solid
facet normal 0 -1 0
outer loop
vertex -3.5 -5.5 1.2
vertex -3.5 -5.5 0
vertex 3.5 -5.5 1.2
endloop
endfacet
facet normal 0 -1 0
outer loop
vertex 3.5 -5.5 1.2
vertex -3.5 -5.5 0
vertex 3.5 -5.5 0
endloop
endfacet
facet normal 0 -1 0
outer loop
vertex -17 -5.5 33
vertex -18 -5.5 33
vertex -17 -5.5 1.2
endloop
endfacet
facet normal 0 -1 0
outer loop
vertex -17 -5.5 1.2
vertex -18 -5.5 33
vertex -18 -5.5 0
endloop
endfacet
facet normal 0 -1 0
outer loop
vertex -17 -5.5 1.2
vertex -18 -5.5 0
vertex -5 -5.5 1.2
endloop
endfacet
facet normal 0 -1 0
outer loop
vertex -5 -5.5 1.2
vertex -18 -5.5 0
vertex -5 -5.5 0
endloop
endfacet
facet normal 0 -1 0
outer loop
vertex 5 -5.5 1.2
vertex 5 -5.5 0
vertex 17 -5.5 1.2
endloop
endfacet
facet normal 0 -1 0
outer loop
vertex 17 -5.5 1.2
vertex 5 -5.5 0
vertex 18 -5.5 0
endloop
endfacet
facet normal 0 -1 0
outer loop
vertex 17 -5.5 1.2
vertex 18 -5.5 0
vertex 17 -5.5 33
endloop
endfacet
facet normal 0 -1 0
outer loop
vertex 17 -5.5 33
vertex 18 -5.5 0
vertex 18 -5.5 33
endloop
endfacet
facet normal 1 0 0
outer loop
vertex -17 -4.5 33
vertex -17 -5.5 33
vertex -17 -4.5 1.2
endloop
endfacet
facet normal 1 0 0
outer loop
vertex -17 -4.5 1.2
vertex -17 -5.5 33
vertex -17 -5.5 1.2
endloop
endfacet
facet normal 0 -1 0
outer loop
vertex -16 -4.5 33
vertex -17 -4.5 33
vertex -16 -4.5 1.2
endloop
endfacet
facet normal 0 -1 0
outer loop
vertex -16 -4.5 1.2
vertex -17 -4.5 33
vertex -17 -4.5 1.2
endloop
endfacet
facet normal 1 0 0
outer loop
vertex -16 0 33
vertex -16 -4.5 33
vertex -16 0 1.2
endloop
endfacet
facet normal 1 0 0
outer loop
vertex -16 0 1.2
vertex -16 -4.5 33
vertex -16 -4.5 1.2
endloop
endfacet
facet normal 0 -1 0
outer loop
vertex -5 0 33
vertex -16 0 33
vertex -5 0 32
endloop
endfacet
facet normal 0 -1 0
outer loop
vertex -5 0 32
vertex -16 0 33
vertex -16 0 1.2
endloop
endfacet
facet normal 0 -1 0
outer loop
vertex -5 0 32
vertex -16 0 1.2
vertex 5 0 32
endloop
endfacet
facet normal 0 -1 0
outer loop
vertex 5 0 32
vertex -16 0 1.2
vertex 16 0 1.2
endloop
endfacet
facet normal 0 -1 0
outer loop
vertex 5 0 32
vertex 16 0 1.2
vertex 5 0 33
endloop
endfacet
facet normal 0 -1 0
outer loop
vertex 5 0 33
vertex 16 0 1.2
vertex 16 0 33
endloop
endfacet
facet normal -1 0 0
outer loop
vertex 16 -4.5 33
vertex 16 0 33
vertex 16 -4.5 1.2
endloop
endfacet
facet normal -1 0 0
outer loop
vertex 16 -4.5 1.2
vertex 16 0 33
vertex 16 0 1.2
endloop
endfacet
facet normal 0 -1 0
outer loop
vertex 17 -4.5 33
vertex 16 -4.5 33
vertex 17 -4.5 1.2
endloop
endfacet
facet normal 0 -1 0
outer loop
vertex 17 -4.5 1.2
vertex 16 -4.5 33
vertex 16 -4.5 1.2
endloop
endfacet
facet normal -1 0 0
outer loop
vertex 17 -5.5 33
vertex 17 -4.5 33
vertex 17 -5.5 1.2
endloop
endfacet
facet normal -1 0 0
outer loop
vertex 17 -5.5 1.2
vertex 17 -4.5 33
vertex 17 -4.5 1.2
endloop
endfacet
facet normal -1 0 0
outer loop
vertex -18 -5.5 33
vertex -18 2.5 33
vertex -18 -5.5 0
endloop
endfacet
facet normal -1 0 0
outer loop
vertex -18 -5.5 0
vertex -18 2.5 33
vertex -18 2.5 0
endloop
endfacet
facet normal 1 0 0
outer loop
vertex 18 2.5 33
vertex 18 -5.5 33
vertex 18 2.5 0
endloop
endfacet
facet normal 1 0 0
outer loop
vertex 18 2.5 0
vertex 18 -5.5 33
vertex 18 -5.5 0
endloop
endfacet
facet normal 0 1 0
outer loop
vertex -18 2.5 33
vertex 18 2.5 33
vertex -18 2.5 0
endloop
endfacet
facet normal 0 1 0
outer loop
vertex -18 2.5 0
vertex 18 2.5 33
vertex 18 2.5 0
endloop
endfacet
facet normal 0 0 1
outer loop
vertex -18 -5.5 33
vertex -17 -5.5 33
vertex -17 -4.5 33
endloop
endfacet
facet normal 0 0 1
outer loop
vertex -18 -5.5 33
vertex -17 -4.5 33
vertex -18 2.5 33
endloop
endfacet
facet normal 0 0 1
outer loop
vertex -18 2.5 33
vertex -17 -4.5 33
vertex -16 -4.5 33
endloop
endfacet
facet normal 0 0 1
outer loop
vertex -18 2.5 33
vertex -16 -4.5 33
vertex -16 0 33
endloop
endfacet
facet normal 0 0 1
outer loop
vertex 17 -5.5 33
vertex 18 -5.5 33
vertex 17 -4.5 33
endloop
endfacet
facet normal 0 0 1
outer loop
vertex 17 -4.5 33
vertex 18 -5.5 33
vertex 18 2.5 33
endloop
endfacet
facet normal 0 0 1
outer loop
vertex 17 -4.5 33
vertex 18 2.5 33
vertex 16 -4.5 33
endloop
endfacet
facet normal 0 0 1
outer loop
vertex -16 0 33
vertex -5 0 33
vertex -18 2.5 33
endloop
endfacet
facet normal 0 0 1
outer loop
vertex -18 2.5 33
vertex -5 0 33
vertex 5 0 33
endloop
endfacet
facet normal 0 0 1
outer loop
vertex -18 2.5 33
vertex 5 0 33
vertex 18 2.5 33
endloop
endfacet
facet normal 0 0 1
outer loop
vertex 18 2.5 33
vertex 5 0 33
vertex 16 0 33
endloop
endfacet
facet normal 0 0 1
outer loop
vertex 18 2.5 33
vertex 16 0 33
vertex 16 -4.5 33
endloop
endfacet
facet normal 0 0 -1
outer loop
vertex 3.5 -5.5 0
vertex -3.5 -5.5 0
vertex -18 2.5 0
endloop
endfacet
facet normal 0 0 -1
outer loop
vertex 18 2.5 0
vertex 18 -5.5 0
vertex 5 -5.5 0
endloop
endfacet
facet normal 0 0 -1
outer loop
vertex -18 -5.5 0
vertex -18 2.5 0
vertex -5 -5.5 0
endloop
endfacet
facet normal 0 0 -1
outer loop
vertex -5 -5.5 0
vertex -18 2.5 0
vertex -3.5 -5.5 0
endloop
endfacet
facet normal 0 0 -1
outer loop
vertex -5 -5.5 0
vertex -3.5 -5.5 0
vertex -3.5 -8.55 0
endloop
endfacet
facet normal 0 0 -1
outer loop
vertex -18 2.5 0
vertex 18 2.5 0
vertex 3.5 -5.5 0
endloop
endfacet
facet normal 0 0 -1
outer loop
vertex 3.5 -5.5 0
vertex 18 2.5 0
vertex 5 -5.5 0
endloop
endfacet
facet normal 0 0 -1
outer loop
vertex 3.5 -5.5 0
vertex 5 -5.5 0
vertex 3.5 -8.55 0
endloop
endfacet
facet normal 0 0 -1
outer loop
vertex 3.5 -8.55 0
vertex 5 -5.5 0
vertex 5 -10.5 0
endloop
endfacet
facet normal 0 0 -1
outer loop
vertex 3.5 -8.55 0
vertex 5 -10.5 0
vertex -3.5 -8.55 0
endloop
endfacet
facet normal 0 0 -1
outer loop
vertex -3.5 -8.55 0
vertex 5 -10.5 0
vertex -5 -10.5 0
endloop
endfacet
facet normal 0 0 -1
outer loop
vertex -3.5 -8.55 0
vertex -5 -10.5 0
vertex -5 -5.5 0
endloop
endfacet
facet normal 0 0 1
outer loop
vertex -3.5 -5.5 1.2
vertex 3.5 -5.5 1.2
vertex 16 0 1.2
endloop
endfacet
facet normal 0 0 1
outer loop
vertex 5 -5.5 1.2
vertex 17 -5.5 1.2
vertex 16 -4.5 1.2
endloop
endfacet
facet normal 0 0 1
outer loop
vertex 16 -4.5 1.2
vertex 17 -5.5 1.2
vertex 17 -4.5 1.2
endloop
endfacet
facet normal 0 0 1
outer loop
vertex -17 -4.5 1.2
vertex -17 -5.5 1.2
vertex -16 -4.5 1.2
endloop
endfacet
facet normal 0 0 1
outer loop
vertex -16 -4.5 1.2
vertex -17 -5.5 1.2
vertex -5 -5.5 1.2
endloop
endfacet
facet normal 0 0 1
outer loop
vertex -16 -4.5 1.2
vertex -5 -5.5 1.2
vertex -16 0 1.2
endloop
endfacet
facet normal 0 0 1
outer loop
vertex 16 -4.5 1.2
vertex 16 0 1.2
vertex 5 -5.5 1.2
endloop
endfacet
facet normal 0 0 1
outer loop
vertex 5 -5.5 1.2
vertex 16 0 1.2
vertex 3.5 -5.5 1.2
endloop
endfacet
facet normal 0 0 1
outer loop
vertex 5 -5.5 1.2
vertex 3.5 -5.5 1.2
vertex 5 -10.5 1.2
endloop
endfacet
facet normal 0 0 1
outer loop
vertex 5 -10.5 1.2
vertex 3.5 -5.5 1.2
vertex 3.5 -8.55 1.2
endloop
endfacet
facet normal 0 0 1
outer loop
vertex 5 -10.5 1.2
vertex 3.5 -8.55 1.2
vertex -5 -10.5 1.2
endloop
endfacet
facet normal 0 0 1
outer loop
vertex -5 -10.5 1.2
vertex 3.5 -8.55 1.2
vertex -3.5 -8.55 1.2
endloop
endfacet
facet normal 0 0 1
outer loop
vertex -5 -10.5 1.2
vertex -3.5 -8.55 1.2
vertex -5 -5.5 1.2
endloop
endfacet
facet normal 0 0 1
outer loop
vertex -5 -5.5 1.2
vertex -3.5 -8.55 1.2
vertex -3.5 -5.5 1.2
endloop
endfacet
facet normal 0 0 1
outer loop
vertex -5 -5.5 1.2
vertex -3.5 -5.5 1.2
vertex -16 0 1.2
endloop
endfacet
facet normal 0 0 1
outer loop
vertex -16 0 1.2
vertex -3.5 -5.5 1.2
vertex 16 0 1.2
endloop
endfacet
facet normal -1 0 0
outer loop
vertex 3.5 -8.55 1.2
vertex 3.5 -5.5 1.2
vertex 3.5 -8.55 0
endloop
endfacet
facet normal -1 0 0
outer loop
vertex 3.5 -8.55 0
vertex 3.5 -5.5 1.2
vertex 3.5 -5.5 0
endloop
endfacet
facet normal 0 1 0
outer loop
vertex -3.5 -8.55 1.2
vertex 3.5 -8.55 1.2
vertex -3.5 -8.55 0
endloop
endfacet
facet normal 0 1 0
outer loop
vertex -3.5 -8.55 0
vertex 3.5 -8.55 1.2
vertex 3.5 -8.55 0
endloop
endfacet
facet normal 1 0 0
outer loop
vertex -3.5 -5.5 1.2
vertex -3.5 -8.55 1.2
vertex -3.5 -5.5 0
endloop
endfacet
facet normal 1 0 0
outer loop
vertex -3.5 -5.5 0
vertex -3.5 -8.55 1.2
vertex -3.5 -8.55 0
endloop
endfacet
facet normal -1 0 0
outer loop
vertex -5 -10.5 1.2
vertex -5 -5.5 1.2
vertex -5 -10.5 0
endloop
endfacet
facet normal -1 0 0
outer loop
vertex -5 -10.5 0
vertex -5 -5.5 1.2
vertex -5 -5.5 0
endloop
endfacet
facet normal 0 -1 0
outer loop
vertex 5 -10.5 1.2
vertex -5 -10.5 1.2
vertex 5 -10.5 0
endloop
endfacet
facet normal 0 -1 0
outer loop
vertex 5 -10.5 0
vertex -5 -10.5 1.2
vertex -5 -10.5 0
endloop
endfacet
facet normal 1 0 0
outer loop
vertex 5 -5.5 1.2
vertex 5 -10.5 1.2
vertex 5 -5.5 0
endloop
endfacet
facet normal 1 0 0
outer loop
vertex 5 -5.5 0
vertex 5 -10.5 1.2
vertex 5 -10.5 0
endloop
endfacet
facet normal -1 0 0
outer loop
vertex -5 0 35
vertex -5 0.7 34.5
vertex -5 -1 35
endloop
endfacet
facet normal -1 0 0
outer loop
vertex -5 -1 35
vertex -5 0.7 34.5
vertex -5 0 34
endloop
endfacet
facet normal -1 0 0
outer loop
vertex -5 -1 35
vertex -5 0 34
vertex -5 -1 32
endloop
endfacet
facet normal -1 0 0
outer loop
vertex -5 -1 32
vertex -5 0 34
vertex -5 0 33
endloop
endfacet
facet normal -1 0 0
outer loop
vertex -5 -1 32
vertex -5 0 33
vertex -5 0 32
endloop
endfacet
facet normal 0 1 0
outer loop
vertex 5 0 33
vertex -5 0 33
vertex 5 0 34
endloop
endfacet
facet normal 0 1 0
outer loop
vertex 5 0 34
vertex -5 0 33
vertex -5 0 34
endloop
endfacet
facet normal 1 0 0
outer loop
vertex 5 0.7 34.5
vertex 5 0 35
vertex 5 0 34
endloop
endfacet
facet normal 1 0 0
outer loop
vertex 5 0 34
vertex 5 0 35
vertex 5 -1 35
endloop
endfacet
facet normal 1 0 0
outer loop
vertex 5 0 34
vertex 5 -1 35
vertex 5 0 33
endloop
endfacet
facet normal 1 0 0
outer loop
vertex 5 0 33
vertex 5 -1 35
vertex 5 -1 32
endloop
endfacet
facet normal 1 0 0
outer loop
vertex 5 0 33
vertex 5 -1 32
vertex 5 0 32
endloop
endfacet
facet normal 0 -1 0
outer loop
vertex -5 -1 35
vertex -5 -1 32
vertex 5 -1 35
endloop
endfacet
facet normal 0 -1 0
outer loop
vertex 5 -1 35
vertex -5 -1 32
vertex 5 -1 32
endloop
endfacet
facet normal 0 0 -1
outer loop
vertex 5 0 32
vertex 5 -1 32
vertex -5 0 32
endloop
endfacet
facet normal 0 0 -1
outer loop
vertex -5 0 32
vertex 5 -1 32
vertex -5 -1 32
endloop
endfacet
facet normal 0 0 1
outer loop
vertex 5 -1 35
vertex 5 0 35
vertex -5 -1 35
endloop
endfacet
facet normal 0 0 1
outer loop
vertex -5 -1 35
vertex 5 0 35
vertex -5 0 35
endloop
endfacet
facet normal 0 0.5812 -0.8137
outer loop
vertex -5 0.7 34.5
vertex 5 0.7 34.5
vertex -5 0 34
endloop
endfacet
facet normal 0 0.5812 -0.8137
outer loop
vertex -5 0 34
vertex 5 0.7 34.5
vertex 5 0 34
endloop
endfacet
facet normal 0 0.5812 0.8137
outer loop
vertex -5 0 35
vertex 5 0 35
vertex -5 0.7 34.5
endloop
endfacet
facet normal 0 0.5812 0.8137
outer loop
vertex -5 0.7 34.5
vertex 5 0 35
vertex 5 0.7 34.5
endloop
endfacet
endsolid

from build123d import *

# Parameters (mm, degrees)
SALIENTE_EXTRUIR1_DEPTH      = 33
SALIENTE_EXTRUIR2_DEPTH      = 1.2
SALIENTE_EXTRUIR3_DEPTH      = 1.2
SALIENTE_EXTRUIR4_DEPTH      = 2
SALIENTE_EXTRUIR4_DEPTH_BACK = 1
CROQUIS4_W                   = 10
CROQUIS4_H                   = 1
SALIENTE_EXTRUIR5_DEPTH      = 10


with BuildPart() as part:
    # Croquis1 → Saliente-Extruir1 (new body)
    with BuildSketch(Plane.XY):
        Polygon((-18, -5.5), (-17, -5.5), (-17, -4.5), (-16, -4.5), (-16, 0), (16, 0), (16, -4.5), (17, -4.5), (17, -5.5), (18, -5.5), (18, 2.5), (-18, 2.5), align=None)
    extrude(amount=SALIENTE_EXTRUIR1_DEPTH)

    # Croquis2 → Saliente-Extruir2 (add)
    with BuildSketch(Plane.XY):
        Polygon((17, -5.5), (-17, -5.5), (-17, -4.5), (-16, -4.5), (-16, 0), (16, 0), (16, -4.5), (17, -4.5), align=None)
    extrude(amount=SALIENTE_EXTRUIR2_DEPTH)

    # Croquis3 → Saliente-Extruir3 (add)
    with BuildSketch(Plane.XY):
        Polygon((5, -5.5), (5, -10.5), (-5, -10.5), (-5, -5.5), (-3.5, -5.5), (-3.5, -8.55), (3.5, -8.55), (3.5, -5.5), align=None)
    extrude(amount=SALIENTE_EXTRUIR3_DEPTH)

    # Croquis4 → Saliente-Extruir4 (add, two sides: drawn at the far end of the back side and taken through both)
    with BuildSketch(Plane.XY.offset(33).offset(-SALIENTE_EXTRUIR4_DEPTH_BACK)):
        with Locations((0, -0.5)):
            Rectangle(CROQUIS4_W, CROQUIS4_H)
    extrude(amount=SALIENTE_EXTRUIR4_DEPTH + SALIENTE_EXTRUIR4_DEPTH_BACK)

    # Croquis5 → Saliente-Extruir5 (add)
    with BuildSketch(Plane(origin=(5, 0, 0), x_dir=(0, 0, -1), z_dir=(1, 0, 0))):
        Polygon((-35, 0), (-34.5, 0.7), (-34, 0), align=None)
    extrude(amount=-SALIENTE_EXTRUIR5_DEPTH)


solid = part.part
